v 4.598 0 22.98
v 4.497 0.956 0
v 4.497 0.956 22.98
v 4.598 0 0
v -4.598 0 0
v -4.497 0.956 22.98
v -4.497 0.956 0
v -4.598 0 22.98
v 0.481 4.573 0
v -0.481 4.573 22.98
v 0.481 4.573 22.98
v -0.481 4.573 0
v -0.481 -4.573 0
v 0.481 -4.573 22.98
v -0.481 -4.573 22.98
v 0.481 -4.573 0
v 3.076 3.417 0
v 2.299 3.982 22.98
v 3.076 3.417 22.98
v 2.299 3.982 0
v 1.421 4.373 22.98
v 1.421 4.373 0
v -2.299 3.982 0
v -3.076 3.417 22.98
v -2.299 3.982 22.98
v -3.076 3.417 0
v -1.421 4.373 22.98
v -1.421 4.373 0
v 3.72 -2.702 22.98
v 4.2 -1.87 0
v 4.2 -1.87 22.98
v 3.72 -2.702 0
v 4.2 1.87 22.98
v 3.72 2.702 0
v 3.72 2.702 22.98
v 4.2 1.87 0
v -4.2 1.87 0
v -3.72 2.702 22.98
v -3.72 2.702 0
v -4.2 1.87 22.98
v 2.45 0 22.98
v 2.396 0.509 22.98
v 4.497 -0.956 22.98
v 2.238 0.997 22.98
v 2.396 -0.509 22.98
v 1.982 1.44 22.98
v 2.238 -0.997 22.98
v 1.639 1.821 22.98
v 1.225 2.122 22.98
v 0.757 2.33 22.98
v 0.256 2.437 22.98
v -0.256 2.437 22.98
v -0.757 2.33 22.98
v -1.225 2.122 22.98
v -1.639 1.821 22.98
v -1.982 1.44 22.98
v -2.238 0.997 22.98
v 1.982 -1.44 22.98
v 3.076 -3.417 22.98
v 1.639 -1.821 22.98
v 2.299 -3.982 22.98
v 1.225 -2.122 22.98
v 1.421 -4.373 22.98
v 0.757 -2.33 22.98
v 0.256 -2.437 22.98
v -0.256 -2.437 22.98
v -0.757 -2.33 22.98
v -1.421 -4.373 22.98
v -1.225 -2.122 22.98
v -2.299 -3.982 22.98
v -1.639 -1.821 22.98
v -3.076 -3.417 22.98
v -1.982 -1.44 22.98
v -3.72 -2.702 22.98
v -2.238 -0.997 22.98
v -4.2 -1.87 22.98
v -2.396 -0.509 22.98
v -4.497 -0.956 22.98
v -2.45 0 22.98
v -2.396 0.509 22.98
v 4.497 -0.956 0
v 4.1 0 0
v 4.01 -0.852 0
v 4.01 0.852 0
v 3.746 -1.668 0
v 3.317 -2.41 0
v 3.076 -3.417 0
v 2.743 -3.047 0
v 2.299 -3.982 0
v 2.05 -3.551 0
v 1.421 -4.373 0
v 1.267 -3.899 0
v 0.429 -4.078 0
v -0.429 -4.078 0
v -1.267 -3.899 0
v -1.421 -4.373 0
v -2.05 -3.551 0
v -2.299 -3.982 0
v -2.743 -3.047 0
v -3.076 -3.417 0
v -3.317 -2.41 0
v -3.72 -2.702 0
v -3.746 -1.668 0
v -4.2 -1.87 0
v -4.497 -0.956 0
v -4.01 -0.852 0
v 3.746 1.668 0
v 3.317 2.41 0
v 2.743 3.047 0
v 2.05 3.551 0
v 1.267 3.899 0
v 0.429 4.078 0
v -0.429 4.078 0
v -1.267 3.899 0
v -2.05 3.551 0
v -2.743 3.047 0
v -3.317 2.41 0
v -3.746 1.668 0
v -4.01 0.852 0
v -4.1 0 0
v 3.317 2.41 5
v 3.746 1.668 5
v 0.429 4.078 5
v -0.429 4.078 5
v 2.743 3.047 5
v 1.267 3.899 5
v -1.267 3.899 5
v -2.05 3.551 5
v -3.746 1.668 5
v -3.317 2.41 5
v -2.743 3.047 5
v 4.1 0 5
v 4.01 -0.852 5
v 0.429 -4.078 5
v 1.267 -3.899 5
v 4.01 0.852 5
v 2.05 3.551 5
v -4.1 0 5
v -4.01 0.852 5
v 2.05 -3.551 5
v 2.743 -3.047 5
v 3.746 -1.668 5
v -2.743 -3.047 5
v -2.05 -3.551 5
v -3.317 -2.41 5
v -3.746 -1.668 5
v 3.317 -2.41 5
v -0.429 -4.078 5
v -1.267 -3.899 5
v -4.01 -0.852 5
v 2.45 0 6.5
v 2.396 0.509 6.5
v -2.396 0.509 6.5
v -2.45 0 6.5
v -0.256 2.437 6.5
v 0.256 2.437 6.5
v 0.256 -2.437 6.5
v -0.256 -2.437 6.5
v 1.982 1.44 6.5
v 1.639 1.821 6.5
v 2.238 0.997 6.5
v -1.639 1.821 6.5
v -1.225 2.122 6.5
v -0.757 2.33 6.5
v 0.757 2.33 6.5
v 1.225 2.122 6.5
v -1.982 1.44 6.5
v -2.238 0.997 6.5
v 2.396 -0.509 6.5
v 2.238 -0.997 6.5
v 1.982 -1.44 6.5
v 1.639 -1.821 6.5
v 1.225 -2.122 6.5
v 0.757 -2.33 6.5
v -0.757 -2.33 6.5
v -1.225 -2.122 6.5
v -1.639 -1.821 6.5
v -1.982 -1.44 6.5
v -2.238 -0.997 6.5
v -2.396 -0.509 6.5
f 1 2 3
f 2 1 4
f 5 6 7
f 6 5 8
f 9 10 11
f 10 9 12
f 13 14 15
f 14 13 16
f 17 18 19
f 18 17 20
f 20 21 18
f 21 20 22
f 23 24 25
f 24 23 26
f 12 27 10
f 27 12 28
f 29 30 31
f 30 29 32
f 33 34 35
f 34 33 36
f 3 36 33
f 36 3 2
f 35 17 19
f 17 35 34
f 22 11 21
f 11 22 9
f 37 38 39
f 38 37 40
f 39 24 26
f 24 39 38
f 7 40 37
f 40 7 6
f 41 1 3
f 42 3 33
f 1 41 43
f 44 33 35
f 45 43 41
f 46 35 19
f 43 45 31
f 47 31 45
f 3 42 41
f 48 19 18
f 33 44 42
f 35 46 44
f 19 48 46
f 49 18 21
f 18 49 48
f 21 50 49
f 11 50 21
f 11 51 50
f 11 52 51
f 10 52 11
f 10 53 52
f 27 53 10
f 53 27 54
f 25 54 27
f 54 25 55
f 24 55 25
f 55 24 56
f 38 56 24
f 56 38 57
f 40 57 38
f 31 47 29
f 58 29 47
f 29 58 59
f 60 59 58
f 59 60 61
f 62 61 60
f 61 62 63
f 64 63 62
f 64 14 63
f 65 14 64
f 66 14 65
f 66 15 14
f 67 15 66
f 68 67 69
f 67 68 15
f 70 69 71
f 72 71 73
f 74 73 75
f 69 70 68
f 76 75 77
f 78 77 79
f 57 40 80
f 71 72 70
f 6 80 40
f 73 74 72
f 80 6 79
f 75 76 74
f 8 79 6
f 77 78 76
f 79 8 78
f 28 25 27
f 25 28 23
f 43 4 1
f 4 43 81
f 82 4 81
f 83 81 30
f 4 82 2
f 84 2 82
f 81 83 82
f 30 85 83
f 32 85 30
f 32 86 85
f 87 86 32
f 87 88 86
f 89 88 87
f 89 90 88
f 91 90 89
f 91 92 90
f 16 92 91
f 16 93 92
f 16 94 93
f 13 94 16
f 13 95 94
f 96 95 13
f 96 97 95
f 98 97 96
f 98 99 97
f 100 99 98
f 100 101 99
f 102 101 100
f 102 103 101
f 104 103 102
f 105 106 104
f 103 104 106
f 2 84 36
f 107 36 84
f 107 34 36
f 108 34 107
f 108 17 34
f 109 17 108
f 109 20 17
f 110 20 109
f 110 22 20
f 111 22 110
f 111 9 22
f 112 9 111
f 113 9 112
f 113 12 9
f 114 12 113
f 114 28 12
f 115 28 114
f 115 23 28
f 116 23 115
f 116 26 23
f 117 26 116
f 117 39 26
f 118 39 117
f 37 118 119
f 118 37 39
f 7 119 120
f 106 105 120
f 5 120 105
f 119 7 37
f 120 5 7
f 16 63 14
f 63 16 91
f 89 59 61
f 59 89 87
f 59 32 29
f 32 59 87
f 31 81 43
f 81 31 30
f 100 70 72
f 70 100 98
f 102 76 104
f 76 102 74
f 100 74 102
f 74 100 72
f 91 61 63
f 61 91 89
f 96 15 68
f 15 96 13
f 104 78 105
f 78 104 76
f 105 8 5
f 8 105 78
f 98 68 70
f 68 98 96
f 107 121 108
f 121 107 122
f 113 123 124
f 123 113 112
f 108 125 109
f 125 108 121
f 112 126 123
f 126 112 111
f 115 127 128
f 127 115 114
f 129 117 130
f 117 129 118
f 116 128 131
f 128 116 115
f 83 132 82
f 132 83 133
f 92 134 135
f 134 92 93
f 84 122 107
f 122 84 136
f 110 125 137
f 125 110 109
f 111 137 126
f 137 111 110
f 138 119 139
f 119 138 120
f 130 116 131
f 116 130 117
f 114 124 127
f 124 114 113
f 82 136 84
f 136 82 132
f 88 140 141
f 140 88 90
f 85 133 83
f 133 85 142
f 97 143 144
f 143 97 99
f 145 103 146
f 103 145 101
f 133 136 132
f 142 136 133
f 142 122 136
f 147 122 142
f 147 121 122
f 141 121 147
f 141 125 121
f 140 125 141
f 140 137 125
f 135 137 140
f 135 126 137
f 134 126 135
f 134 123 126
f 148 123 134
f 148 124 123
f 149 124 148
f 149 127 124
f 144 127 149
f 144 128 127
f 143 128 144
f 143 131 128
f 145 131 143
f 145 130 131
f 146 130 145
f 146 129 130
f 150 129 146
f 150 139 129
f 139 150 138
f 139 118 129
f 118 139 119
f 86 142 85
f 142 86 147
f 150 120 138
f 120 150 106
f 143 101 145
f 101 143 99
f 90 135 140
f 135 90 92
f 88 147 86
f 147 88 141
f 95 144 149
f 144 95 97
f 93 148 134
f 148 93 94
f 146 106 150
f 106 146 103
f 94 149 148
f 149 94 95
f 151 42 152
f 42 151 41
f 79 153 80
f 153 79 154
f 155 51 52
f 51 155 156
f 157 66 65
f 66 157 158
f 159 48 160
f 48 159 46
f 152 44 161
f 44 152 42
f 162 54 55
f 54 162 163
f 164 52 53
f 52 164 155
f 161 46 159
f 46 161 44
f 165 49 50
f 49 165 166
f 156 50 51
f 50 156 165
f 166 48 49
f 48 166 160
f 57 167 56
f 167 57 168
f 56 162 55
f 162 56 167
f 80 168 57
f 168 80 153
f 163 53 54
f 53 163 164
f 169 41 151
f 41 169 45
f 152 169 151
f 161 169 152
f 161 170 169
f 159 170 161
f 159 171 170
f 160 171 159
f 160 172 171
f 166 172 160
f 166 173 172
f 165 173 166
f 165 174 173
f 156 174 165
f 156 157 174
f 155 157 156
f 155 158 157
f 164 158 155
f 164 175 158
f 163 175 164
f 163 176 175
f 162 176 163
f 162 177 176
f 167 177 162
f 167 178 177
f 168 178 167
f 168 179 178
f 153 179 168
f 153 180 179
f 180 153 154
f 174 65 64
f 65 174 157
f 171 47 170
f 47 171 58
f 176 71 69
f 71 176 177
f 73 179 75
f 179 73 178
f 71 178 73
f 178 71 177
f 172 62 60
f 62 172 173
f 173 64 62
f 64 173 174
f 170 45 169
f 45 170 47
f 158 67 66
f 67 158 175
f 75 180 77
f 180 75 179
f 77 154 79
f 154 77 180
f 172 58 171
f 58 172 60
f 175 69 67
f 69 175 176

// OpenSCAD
// height 2m in H0 scale
// diameter 80cm in H0 scale

$fn=30;

difference(){
    cylinder(d=9.1954,h=22.98);
    translate([0,0,-0.1])
    cylinder(d=8.2,h=5.1);
    translate([0,0,6.5])
    cylinder(d=4.9,h=22.9885);
}
